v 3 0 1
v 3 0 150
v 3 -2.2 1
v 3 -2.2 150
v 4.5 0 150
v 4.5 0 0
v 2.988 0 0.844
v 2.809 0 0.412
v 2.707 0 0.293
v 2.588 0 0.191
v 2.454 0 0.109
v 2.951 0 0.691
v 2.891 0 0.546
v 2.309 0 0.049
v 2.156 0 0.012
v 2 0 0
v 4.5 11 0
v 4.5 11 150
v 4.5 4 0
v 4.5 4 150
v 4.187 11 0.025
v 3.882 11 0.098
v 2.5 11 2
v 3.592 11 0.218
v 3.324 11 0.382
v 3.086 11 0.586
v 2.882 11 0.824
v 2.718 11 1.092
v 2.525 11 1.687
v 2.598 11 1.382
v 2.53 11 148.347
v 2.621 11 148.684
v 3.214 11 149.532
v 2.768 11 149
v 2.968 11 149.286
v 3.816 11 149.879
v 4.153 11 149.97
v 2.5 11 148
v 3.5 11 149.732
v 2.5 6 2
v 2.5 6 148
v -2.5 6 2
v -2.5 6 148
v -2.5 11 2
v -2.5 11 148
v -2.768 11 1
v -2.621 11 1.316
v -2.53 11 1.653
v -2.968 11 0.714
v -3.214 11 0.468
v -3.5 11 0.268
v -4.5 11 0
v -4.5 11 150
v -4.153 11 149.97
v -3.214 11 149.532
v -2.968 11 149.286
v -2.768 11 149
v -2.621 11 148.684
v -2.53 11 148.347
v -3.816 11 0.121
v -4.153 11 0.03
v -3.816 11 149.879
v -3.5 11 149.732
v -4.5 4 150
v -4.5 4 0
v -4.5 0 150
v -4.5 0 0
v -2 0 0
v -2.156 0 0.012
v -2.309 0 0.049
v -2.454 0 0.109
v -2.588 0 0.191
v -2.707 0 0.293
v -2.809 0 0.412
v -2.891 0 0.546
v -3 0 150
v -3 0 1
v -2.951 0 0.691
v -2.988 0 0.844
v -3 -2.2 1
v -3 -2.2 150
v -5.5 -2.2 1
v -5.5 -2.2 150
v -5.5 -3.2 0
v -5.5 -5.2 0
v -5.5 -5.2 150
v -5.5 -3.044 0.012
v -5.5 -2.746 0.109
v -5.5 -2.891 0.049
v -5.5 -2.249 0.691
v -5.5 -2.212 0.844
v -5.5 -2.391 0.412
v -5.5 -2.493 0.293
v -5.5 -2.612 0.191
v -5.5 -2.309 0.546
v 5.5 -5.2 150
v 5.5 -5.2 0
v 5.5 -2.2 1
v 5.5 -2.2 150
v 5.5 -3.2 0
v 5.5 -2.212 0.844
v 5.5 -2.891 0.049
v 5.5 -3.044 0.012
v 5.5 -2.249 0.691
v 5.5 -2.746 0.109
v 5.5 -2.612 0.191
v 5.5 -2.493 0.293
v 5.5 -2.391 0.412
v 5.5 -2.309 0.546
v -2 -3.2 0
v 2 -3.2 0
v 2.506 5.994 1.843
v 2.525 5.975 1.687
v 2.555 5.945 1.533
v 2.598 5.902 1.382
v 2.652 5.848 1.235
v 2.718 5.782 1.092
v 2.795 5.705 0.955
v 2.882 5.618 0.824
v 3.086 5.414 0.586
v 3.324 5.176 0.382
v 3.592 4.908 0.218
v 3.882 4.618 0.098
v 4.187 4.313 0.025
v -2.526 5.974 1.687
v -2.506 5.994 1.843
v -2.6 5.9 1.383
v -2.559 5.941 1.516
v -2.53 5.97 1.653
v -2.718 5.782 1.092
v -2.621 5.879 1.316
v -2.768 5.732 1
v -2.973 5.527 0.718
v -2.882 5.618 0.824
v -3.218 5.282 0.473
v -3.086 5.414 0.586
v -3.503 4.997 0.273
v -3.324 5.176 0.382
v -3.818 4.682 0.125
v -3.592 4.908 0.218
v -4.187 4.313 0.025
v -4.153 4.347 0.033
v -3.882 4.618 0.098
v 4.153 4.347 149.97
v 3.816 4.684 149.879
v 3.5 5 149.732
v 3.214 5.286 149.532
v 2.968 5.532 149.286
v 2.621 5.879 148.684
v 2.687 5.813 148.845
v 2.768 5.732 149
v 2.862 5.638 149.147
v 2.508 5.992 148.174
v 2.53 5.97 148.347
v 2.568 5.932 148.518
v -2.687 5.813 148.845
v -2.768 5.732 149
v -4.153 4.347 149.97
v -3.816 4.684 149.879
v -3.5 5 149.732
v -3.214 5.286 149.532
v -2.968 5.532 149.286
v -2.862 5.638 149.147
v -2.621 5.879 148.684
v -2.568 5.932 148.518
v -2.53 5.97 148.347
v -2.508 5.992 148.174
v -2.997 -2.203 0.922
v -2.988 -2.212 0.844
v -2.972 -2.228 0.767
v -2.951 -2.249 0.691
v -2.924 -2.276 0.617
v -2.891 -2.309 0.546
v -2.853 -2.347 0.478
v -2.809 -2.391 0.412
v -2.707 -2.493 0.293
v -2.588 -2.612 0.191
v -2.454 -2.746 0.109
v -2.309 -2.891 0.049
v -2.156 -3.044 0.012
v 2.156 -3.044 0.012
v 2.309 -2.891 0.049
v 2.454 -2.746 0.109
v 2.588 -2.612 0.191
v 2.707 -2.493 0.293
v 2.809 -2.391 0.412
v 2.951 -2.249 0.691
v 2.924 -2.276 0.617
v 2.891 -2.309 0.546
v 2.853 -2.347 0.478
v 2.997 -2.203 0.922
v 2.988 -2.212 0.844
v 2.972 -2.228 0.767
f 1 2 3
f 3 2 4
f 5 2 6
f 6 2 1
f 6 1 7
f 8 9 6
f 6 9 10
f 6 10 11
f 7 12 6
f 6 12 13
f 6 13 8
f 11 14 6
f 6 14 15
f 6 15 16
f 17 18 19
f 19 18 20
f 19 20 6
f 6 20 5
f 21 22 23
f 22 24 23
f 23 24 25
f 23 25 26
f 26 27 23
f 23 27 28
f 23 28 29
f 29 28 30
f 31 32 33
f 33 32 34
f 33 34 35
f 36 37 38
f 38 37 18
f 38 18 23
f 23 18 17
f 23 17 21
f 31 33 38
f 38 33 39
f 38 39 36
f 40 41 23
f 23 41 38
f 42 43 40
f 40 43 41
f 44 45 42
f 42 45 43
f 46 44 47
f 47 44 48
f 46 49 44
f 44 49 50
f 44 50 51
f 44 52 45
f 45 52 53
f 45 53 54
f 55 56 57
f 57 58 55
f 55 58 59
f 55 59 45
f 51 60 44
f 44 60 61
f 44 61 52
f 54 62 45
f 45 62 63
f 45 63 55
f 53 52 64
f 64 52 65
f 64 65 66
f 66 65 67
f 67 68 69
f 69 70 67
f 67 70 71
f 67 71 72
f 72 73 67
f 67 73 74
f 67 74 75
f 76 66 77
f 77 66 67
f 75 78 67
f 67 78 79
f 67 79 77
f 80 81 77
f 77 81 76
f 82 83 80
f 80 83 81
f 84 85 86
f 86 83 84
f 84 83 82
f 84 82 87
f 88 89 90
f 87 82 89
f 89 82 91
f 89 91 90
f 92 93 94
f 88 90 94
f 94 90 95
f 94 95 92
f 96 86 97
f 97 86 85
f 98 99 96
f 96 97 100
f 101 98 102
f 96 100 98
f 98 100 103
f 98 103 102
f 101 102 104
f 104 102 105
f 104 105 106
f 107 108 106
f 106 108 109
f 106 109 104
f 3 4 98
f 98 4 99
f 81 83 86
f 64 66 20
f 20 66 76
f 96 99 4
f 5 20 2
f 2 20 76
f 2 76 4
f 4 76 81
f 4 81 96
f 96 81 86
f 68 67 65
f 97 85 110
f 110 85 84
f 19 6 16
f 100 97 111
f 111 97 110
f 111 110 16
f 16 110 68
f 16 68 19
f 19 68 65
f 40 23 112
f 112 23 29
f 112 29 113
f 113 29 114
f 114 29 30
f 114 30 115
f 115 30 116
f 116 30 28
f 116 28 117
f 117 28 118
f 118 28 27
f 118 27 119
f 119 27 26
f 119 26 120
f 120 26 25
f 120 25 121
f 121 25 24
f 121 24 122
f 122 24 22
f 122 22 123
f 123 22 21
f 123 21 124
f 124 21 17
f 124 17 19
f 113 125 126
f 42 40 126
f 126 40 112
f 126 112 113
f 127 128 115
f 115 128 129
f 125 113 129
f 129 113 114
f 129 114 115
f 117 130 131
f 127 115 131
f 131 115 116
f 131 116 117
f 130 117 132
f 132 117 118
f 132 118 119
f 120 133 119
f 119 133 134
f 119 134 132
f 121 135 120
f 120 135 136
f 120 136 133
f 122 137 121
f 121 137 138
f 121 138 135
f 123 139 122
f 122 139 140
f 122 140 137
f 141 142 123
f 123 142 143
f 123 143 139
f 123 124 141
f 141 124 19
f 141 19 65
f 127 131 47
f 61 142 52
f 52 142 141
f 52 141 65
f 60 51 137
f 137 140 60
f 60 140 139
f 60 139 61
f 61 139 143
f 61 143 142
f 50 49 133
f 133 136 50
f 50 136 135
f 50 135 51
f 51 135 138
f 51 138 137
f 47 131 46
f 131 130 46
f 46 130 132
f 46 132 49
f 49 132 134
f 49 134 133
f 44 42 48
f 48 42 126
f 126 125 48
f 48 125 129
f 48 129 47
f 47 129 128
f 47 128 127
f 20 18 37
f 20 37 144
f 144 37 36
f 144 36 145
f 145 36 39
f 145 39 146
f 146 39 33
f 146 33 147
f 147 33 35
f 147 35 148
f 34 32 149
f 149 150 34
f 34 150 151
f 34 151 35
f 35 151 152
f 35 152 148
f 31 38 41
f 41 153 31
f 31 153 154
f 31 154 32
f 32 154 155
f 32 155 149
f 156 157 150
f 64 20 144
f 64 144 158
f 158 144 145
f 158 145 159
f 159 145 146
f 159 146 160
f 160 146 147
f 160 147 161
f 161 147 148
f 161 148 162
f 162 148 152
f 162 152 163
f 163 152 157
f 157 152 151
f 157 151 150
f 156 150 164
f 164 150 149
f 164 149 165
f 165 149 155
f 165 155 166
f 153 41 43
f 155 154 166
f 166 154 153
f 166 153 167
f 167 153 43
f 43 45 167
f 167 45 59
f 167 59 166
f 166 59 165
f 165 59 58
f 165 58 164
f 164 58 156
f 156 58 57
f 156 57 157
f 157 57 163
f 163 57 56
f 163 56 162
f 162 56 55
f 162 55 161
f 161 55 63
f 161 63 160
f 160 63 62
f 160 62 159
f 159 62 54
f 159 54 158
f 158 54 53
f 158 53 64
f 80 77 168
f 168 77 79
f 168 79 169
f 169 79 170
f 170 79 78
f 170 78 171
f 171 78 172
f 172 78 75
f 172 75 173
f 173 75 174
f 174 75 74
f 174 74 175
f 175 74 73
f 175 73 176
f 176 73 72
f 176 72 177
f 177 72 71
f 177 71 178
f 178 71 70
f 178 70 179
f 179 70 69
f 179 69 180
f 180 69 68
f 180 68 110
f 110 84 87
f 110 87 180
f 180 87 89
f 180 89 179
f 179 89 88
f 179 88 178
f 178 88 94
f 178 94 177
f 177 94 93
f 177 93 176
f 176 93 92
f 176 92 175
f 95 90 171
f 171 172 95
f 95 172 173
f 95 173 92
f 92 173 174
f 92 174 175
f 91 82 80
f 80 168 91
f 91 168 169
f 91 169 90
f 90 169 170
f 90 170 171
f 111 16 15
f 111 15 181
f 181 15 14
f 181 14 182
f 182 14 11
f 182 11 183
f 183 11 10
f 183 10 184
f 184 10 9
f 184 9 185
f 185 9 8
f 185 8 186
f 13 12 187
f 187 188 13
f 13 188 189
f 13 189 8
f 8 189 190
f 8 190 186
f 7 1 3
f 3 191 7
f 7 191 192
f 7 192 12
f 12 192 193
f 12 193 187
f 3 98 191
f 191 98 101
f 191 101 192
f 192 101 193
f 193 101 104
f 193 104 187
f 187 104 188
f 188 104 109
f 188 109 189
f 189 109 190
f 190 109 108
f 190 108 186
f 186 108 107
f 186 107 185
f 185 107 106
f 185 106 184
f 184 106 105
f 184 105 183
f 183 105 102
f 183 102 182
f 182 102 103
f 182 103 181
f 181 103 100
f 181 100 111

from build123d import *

# Parameters (mm, degrees)
SKETCH_1_W      = 5
SKETCH_1_H      = 6
SKETCH_1_W_2    = 6
SKETCH_1_H_2    = 2.2
EXTRUDE_1_DEPTH = 150
FILLET_1_R      = 2
FILLET_2_R      = 1


with BuildPart() as part:
    # 스케치1 → 보스-돌출1 (new body)
    with BuildSketch(Plane.XY):
        Polygon((-4.5, 0), (-3, 0), (-2.5, 0), (-2.5, 6), (-2.5, 11), (-4.5, 11), align=None)
        with Locations((0, 3)):
            Rectangle(SKETCH_1_W, SKETCH_1_H)
        Polygon((2.5, 6), (2.5, 0), (3, 0), (4.5, 0), (4.5, 11), (2.5, 11), align=None)
        with Locations((0, -1.1)):
            Rectangle(SKETCH_1_W_2, SKETCH_1_H_2)
        Polygon((3, -2.2), (-3, -2.2), (-5.5, -2.2), (-5.5, -5.2), (5.5, -5.2), (5.5, -2.2), align=None)
    extrude(amount=EXTRUDE_1_DEPTH)

    # 필렛1
    fillet_1_edges = [part.edges().sort_by_distance(p)[0] for p in [
        (-2.5, 8.5, 0),
        (2.5, 8.5, 0),
        (-2.5, 8.5, 150),
        (2.5, 8.5, 150),
        (0, 6, 0),
        (0, 6, 150),
    ]]
    fillet(fillet_1_edges, radius=FILLET_1_R - 0.0001)  # a hair under: the kernel refuses the full size

    # 필렛2
    fillet_2_edges = [part.edges().sort_by_distance(p)[0] for p in [
        (4.25, -2.2, 0),
        (-4.25, -2.2, 0),
        (-3, -1.1, 0),
        (3, -1.1, 0),
    ]]
    fillet(fillet_2_edges, radius=FILLET_2_R)


solid = part.part
